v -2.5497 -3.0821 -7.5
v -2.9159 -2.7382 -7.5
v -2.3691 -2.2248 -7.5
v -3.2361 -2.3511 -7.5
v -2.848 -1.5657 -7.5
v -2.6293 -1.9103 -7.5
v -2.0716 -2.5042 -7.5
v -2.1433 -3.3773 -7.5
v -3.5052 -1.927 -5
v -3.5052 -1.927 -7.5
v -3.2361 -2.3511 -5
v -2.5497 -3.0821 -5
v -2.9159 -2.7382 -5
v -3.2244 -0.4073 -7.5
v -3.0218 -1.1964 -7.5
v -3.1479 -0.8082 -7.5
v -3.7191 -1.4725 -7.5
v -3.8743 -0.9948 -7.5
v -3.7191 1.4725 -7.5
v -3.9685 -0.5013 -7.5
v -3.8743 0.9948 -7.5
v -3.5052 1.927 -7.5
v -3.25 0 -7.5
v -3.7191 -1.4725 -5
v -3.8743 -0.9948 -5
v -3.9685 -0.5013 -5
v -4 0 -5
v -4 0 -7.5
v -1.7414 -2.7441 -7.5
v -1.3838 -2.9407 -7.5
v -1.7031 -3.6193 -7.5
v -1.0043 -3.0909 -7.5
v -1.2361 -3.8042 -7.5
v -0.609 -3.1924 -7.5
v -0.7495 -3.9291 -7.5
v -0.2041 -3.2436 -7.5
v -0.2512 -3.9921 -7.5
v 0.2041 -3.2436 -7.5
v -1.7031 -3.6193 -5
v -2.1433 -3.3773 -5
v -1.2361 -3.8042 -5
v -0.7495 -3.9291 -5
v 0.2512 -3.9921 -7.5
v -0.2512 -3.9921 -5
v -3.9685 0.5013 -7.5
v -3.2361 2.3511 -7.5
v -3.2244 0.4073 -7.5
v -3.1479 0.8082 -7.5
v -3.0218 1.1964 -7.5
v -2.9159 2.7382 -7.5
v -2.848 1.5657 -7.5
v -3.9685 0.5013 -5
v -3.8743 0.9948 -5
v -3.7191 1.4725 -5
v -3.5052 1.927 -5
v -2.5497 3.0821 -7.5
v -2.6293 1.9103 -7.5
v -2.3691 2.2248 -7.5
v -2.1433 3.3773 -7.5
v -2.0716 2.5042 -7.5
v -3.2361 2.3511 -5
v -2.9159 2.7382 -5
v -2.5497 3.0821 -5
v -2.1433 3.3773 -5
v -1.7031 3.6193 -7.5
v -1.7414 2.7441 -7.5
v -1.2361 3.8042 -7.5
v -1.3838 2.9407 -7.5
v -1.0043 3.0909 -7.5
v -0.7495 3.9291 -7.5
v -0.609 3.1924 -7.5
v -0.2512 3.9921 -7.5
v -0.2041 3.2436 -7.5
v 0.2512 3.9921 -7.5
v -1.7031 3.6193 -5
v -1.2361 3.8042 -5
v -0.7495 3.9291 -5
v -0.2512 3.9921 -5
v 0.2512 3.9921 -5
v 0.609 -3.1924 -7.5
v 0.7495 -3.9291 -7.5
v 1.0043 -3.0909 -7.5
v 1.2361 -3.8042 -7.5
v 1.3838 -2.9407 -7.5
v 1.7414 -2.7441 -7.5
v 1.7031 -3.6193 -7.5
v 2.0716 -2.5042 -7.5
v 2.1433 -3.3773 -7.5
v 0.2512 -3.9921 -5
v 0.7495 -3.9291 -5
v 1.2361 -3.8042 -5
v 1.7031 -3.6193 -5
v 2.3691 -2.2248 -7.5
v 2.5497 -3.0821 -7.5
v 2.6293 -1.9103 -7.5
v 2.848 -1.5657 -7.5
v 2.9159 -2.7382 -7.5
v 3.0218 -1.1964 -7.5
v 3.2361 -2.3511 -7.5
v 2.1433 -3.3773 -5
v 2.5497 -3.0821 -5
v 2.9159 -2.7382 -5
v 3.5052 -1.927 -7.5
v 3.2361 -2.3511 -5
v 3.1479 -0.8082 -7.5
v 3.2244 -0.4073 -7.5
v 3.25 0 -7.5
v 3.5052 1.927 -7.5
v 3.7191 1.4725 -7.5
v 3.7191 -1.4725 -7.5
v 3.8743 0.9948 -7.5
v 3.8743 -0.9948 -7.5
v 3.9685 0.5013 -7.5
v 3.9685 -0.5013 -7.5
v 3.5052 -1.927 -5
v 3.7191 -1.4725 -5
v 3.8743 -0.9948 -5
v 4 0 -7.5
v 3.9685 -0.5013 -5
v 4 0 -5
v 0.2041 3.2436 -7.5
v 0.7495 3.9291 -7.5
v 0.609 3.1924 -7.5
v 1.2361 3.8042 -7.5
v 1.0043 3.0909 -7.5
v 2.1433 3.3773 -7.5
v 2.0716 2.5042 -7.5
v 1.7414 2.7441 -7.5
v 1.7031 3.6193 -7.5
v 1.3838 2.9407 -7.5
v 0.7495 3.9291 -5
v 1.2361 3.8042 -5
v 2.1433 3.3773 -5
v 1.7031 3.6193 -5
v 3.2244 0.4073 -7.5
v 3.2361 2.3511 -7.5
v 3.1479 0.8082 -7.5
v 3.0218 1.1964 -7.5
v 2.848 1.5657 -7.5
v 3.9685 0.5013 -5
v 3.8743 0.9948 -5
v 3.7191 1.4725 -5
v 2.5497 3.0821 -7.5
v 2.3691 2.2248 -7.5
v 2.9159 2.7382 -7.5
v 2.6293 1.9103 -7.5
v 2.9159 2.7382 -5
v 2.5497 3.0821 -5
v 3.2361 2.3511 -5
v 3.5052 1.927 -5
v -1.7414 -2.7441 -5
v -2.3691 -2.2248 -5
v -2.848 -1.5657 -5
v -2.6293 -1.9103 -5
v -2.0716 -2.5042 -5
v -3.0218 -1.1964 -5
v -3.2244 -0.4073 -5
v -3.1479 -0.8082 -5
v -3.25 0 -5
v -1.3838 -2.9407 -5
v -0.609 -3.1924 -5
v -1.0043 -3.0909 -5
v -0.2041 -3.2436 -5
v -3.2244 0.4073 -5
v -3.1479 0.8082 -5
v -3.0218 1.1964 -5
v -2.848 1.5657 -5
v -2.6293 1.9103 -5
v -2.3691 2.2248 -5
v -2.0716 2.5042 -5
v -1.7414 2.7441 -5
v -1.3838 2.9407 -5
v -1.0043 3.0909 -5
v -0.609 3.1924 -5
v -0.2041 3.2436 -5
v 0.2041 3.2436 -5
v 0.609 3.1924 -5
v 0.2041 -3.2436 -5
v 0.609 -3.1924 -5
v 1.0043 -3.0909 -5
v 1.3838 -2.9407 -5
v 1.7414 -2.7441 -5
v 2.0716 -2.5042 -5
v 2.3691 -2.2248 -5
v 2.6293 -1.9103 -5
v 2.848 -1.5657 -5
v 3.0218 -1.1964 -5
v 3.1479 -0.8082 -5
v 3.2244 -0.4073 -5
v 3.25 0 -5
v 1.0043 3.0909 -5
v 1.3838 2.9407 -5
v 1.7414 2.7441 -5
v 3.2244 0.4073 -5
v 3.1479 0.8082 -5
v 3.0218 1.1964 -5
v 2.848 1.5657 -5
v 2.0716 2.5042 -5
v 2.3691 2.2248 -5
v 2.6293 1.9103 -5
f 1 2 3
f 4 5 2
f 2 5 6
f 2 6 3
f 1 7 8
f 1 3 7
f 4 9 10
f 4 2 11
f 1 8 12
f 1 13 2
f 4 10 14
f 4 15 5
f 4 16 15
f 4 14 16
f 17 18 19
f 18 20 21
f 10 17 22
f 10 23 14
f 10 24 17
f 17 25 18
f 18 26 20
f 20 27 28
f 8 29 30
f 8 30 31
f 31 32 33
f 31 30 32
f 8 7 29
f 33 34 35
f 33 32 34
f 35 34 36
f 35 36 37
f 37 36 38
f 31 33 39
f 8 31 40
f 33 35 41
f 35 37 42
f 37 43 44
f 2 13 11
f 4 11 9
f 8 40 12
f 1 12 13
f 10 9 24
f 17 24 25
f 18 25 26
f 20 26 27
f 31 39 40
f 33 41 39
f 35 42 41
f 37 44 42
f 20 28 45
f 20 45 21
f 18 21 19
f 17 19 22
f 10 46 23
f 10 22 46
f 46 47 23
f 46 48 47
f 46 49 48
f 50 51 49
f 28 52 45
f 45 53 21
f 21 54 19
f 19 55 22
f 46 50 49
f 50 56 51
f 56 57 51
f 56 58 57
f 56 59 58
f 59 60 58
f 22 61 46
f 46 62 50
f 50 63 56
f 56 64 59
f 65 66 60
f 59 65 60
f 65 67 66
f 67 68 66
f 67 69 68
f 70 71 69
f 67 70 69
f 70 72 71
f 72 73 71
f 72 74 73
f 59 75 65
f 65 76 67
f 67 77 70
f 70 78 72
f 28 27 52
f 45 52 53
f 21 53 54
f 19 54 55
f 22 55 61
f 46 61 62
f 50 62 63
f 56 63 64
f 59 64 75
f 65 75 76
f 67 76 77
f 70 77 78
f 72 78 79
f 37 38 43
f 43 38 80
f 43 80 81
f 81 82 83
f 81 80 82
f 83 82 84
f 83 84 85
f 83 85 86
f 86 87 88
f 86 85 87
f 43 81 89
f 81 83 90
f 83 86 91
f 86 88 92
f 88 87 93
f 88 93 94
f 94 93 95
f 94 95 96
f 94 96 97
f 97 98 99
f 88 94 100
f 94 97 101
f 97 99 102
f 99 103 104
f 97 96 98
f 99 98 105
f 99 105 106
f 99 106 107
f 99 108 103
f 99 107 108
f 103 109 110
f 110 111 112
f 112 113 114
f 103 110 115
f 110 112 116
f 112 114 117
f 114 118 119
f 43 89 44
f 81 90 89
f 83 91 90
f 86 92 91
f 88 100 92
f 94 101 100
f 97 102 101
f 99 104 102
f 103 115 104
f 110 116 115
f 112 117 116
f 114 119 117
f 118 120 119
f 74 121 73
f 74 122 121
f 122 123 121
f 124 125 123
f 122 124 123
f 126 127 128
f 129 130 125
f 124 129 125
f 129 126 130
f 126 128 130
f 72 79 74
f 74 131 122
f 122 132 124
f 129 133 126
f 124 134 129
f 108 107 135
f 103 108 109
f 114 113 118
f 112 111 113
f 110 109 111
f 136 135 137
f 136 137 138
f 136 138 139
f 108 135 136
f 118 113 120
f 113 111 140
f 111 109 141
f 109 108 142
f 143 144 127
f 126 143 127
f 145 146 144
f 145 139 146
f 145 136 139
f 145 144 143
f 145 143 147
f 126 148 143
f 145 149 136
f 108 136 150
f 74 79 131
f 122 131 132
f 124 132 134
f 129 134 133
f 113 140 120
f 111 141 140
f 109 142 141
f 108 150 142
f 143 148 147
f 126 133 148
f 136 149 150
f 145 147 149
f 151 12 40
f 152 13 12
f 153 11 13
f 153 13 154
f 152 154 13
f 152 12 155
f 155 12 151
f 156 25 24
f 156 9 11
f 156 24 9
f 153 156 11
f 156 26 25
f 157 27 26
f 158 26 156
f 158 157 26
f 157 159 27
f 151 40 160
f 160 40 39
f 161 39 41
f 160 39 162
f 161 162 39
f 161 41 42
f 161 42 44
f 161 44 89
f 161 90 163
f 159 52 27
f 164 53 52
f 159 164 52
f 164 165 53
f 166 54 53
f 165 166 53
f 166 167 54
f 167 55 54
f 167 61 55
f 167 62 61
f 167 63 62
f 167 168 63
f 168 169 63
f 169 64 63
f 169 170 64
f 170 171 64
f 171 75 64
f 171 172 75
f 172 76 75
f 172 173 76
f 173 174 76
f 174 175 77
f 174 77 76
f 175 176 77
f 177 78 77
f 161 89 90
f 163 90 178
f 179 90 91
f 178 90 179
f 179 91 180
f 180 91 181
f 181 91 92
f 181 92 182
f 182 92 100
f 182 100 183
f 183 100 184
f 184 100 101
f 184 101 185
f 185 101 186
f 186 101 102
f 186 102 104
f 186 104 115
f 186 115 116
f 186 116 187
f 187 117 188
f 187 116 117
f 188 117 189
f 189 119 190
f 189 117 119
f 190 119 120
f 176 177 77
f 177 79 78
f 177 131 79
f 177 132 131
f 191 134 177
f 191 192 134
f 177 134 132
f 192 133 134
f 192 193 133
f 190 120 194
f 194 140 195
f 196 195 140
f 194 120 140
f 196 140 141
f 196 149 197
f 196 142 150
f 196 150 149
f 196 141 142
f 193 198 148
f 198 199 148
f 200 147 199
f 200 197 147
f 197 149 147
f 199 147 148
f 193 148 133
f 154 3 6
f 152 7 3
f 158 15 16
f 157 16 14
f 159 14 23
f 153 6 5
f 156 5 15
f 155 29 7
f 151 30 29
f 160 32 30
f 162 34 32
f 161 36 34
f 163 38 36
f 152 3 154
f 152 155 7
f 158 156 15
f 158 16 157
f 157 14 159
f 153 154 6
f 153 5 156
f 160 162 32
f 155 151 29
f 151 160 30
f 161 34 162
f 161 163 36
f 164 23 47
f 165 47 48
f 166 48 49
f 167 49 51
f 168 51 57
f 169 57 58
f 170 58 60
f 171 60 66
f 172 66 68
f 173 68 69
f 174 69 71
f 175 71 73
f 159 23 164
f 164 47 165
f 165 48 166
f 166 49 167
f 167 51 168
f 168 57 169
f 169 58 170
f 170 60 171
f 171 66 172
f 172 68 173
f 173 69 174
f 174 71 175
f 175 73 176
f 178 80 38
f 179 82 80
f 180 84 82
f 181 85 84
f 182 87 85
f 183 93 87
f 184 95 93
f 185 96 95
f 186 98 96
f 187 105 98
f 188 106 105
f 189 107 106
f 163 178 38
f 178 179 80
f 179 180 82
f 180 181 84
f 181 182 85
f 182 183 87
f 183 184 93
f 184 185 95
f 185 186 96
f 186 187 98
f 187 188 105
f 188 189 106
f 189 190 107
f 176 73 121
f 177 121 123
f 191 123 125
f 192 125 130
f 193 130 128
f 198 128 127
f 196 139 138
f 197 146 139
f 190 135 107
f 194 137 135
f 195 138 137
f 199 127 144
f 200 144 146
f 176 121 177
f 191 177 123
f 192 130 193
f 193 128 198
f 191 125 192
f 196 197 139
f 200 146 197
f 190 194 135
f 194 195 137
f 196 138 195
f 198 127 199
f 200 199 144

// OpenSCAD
$fn = 50;

difference() {
	union() {
		translate(v = [0, 0, -7.5]) {
			cylinder(h = 7.5, r = 4.0);
		}
		#translate(v = [0, 0, -9.0]) {
			cylinder(h = 9, r = 2.875);
		}
	}
	union() {
		translate(v = [0, 0, 0]) {
			rotate(a = [0, 0, 0]) {
				difference() {
					union() {
						translate(v = [0, 0, -5]) {
							linear_extrude(height = 5) {
								polygon(points = [[5.914249999999999, 0.0], [2.957125, 5.1218907443321156], [-2.9571249999999982, 5.1218907443321156], [-5.914249999999999, 7.242867331857232e-16], [-2.9571250000000022, -5.121890744332115], [2.9571249999999956, -5.121890744332118]]);
							}
						}
					}
					union();
				}
			}
		}
		#translate(v = [0, 0, -100.0]) {
			cylinder(h = 200, r = 3.25);
		}
	}
}
